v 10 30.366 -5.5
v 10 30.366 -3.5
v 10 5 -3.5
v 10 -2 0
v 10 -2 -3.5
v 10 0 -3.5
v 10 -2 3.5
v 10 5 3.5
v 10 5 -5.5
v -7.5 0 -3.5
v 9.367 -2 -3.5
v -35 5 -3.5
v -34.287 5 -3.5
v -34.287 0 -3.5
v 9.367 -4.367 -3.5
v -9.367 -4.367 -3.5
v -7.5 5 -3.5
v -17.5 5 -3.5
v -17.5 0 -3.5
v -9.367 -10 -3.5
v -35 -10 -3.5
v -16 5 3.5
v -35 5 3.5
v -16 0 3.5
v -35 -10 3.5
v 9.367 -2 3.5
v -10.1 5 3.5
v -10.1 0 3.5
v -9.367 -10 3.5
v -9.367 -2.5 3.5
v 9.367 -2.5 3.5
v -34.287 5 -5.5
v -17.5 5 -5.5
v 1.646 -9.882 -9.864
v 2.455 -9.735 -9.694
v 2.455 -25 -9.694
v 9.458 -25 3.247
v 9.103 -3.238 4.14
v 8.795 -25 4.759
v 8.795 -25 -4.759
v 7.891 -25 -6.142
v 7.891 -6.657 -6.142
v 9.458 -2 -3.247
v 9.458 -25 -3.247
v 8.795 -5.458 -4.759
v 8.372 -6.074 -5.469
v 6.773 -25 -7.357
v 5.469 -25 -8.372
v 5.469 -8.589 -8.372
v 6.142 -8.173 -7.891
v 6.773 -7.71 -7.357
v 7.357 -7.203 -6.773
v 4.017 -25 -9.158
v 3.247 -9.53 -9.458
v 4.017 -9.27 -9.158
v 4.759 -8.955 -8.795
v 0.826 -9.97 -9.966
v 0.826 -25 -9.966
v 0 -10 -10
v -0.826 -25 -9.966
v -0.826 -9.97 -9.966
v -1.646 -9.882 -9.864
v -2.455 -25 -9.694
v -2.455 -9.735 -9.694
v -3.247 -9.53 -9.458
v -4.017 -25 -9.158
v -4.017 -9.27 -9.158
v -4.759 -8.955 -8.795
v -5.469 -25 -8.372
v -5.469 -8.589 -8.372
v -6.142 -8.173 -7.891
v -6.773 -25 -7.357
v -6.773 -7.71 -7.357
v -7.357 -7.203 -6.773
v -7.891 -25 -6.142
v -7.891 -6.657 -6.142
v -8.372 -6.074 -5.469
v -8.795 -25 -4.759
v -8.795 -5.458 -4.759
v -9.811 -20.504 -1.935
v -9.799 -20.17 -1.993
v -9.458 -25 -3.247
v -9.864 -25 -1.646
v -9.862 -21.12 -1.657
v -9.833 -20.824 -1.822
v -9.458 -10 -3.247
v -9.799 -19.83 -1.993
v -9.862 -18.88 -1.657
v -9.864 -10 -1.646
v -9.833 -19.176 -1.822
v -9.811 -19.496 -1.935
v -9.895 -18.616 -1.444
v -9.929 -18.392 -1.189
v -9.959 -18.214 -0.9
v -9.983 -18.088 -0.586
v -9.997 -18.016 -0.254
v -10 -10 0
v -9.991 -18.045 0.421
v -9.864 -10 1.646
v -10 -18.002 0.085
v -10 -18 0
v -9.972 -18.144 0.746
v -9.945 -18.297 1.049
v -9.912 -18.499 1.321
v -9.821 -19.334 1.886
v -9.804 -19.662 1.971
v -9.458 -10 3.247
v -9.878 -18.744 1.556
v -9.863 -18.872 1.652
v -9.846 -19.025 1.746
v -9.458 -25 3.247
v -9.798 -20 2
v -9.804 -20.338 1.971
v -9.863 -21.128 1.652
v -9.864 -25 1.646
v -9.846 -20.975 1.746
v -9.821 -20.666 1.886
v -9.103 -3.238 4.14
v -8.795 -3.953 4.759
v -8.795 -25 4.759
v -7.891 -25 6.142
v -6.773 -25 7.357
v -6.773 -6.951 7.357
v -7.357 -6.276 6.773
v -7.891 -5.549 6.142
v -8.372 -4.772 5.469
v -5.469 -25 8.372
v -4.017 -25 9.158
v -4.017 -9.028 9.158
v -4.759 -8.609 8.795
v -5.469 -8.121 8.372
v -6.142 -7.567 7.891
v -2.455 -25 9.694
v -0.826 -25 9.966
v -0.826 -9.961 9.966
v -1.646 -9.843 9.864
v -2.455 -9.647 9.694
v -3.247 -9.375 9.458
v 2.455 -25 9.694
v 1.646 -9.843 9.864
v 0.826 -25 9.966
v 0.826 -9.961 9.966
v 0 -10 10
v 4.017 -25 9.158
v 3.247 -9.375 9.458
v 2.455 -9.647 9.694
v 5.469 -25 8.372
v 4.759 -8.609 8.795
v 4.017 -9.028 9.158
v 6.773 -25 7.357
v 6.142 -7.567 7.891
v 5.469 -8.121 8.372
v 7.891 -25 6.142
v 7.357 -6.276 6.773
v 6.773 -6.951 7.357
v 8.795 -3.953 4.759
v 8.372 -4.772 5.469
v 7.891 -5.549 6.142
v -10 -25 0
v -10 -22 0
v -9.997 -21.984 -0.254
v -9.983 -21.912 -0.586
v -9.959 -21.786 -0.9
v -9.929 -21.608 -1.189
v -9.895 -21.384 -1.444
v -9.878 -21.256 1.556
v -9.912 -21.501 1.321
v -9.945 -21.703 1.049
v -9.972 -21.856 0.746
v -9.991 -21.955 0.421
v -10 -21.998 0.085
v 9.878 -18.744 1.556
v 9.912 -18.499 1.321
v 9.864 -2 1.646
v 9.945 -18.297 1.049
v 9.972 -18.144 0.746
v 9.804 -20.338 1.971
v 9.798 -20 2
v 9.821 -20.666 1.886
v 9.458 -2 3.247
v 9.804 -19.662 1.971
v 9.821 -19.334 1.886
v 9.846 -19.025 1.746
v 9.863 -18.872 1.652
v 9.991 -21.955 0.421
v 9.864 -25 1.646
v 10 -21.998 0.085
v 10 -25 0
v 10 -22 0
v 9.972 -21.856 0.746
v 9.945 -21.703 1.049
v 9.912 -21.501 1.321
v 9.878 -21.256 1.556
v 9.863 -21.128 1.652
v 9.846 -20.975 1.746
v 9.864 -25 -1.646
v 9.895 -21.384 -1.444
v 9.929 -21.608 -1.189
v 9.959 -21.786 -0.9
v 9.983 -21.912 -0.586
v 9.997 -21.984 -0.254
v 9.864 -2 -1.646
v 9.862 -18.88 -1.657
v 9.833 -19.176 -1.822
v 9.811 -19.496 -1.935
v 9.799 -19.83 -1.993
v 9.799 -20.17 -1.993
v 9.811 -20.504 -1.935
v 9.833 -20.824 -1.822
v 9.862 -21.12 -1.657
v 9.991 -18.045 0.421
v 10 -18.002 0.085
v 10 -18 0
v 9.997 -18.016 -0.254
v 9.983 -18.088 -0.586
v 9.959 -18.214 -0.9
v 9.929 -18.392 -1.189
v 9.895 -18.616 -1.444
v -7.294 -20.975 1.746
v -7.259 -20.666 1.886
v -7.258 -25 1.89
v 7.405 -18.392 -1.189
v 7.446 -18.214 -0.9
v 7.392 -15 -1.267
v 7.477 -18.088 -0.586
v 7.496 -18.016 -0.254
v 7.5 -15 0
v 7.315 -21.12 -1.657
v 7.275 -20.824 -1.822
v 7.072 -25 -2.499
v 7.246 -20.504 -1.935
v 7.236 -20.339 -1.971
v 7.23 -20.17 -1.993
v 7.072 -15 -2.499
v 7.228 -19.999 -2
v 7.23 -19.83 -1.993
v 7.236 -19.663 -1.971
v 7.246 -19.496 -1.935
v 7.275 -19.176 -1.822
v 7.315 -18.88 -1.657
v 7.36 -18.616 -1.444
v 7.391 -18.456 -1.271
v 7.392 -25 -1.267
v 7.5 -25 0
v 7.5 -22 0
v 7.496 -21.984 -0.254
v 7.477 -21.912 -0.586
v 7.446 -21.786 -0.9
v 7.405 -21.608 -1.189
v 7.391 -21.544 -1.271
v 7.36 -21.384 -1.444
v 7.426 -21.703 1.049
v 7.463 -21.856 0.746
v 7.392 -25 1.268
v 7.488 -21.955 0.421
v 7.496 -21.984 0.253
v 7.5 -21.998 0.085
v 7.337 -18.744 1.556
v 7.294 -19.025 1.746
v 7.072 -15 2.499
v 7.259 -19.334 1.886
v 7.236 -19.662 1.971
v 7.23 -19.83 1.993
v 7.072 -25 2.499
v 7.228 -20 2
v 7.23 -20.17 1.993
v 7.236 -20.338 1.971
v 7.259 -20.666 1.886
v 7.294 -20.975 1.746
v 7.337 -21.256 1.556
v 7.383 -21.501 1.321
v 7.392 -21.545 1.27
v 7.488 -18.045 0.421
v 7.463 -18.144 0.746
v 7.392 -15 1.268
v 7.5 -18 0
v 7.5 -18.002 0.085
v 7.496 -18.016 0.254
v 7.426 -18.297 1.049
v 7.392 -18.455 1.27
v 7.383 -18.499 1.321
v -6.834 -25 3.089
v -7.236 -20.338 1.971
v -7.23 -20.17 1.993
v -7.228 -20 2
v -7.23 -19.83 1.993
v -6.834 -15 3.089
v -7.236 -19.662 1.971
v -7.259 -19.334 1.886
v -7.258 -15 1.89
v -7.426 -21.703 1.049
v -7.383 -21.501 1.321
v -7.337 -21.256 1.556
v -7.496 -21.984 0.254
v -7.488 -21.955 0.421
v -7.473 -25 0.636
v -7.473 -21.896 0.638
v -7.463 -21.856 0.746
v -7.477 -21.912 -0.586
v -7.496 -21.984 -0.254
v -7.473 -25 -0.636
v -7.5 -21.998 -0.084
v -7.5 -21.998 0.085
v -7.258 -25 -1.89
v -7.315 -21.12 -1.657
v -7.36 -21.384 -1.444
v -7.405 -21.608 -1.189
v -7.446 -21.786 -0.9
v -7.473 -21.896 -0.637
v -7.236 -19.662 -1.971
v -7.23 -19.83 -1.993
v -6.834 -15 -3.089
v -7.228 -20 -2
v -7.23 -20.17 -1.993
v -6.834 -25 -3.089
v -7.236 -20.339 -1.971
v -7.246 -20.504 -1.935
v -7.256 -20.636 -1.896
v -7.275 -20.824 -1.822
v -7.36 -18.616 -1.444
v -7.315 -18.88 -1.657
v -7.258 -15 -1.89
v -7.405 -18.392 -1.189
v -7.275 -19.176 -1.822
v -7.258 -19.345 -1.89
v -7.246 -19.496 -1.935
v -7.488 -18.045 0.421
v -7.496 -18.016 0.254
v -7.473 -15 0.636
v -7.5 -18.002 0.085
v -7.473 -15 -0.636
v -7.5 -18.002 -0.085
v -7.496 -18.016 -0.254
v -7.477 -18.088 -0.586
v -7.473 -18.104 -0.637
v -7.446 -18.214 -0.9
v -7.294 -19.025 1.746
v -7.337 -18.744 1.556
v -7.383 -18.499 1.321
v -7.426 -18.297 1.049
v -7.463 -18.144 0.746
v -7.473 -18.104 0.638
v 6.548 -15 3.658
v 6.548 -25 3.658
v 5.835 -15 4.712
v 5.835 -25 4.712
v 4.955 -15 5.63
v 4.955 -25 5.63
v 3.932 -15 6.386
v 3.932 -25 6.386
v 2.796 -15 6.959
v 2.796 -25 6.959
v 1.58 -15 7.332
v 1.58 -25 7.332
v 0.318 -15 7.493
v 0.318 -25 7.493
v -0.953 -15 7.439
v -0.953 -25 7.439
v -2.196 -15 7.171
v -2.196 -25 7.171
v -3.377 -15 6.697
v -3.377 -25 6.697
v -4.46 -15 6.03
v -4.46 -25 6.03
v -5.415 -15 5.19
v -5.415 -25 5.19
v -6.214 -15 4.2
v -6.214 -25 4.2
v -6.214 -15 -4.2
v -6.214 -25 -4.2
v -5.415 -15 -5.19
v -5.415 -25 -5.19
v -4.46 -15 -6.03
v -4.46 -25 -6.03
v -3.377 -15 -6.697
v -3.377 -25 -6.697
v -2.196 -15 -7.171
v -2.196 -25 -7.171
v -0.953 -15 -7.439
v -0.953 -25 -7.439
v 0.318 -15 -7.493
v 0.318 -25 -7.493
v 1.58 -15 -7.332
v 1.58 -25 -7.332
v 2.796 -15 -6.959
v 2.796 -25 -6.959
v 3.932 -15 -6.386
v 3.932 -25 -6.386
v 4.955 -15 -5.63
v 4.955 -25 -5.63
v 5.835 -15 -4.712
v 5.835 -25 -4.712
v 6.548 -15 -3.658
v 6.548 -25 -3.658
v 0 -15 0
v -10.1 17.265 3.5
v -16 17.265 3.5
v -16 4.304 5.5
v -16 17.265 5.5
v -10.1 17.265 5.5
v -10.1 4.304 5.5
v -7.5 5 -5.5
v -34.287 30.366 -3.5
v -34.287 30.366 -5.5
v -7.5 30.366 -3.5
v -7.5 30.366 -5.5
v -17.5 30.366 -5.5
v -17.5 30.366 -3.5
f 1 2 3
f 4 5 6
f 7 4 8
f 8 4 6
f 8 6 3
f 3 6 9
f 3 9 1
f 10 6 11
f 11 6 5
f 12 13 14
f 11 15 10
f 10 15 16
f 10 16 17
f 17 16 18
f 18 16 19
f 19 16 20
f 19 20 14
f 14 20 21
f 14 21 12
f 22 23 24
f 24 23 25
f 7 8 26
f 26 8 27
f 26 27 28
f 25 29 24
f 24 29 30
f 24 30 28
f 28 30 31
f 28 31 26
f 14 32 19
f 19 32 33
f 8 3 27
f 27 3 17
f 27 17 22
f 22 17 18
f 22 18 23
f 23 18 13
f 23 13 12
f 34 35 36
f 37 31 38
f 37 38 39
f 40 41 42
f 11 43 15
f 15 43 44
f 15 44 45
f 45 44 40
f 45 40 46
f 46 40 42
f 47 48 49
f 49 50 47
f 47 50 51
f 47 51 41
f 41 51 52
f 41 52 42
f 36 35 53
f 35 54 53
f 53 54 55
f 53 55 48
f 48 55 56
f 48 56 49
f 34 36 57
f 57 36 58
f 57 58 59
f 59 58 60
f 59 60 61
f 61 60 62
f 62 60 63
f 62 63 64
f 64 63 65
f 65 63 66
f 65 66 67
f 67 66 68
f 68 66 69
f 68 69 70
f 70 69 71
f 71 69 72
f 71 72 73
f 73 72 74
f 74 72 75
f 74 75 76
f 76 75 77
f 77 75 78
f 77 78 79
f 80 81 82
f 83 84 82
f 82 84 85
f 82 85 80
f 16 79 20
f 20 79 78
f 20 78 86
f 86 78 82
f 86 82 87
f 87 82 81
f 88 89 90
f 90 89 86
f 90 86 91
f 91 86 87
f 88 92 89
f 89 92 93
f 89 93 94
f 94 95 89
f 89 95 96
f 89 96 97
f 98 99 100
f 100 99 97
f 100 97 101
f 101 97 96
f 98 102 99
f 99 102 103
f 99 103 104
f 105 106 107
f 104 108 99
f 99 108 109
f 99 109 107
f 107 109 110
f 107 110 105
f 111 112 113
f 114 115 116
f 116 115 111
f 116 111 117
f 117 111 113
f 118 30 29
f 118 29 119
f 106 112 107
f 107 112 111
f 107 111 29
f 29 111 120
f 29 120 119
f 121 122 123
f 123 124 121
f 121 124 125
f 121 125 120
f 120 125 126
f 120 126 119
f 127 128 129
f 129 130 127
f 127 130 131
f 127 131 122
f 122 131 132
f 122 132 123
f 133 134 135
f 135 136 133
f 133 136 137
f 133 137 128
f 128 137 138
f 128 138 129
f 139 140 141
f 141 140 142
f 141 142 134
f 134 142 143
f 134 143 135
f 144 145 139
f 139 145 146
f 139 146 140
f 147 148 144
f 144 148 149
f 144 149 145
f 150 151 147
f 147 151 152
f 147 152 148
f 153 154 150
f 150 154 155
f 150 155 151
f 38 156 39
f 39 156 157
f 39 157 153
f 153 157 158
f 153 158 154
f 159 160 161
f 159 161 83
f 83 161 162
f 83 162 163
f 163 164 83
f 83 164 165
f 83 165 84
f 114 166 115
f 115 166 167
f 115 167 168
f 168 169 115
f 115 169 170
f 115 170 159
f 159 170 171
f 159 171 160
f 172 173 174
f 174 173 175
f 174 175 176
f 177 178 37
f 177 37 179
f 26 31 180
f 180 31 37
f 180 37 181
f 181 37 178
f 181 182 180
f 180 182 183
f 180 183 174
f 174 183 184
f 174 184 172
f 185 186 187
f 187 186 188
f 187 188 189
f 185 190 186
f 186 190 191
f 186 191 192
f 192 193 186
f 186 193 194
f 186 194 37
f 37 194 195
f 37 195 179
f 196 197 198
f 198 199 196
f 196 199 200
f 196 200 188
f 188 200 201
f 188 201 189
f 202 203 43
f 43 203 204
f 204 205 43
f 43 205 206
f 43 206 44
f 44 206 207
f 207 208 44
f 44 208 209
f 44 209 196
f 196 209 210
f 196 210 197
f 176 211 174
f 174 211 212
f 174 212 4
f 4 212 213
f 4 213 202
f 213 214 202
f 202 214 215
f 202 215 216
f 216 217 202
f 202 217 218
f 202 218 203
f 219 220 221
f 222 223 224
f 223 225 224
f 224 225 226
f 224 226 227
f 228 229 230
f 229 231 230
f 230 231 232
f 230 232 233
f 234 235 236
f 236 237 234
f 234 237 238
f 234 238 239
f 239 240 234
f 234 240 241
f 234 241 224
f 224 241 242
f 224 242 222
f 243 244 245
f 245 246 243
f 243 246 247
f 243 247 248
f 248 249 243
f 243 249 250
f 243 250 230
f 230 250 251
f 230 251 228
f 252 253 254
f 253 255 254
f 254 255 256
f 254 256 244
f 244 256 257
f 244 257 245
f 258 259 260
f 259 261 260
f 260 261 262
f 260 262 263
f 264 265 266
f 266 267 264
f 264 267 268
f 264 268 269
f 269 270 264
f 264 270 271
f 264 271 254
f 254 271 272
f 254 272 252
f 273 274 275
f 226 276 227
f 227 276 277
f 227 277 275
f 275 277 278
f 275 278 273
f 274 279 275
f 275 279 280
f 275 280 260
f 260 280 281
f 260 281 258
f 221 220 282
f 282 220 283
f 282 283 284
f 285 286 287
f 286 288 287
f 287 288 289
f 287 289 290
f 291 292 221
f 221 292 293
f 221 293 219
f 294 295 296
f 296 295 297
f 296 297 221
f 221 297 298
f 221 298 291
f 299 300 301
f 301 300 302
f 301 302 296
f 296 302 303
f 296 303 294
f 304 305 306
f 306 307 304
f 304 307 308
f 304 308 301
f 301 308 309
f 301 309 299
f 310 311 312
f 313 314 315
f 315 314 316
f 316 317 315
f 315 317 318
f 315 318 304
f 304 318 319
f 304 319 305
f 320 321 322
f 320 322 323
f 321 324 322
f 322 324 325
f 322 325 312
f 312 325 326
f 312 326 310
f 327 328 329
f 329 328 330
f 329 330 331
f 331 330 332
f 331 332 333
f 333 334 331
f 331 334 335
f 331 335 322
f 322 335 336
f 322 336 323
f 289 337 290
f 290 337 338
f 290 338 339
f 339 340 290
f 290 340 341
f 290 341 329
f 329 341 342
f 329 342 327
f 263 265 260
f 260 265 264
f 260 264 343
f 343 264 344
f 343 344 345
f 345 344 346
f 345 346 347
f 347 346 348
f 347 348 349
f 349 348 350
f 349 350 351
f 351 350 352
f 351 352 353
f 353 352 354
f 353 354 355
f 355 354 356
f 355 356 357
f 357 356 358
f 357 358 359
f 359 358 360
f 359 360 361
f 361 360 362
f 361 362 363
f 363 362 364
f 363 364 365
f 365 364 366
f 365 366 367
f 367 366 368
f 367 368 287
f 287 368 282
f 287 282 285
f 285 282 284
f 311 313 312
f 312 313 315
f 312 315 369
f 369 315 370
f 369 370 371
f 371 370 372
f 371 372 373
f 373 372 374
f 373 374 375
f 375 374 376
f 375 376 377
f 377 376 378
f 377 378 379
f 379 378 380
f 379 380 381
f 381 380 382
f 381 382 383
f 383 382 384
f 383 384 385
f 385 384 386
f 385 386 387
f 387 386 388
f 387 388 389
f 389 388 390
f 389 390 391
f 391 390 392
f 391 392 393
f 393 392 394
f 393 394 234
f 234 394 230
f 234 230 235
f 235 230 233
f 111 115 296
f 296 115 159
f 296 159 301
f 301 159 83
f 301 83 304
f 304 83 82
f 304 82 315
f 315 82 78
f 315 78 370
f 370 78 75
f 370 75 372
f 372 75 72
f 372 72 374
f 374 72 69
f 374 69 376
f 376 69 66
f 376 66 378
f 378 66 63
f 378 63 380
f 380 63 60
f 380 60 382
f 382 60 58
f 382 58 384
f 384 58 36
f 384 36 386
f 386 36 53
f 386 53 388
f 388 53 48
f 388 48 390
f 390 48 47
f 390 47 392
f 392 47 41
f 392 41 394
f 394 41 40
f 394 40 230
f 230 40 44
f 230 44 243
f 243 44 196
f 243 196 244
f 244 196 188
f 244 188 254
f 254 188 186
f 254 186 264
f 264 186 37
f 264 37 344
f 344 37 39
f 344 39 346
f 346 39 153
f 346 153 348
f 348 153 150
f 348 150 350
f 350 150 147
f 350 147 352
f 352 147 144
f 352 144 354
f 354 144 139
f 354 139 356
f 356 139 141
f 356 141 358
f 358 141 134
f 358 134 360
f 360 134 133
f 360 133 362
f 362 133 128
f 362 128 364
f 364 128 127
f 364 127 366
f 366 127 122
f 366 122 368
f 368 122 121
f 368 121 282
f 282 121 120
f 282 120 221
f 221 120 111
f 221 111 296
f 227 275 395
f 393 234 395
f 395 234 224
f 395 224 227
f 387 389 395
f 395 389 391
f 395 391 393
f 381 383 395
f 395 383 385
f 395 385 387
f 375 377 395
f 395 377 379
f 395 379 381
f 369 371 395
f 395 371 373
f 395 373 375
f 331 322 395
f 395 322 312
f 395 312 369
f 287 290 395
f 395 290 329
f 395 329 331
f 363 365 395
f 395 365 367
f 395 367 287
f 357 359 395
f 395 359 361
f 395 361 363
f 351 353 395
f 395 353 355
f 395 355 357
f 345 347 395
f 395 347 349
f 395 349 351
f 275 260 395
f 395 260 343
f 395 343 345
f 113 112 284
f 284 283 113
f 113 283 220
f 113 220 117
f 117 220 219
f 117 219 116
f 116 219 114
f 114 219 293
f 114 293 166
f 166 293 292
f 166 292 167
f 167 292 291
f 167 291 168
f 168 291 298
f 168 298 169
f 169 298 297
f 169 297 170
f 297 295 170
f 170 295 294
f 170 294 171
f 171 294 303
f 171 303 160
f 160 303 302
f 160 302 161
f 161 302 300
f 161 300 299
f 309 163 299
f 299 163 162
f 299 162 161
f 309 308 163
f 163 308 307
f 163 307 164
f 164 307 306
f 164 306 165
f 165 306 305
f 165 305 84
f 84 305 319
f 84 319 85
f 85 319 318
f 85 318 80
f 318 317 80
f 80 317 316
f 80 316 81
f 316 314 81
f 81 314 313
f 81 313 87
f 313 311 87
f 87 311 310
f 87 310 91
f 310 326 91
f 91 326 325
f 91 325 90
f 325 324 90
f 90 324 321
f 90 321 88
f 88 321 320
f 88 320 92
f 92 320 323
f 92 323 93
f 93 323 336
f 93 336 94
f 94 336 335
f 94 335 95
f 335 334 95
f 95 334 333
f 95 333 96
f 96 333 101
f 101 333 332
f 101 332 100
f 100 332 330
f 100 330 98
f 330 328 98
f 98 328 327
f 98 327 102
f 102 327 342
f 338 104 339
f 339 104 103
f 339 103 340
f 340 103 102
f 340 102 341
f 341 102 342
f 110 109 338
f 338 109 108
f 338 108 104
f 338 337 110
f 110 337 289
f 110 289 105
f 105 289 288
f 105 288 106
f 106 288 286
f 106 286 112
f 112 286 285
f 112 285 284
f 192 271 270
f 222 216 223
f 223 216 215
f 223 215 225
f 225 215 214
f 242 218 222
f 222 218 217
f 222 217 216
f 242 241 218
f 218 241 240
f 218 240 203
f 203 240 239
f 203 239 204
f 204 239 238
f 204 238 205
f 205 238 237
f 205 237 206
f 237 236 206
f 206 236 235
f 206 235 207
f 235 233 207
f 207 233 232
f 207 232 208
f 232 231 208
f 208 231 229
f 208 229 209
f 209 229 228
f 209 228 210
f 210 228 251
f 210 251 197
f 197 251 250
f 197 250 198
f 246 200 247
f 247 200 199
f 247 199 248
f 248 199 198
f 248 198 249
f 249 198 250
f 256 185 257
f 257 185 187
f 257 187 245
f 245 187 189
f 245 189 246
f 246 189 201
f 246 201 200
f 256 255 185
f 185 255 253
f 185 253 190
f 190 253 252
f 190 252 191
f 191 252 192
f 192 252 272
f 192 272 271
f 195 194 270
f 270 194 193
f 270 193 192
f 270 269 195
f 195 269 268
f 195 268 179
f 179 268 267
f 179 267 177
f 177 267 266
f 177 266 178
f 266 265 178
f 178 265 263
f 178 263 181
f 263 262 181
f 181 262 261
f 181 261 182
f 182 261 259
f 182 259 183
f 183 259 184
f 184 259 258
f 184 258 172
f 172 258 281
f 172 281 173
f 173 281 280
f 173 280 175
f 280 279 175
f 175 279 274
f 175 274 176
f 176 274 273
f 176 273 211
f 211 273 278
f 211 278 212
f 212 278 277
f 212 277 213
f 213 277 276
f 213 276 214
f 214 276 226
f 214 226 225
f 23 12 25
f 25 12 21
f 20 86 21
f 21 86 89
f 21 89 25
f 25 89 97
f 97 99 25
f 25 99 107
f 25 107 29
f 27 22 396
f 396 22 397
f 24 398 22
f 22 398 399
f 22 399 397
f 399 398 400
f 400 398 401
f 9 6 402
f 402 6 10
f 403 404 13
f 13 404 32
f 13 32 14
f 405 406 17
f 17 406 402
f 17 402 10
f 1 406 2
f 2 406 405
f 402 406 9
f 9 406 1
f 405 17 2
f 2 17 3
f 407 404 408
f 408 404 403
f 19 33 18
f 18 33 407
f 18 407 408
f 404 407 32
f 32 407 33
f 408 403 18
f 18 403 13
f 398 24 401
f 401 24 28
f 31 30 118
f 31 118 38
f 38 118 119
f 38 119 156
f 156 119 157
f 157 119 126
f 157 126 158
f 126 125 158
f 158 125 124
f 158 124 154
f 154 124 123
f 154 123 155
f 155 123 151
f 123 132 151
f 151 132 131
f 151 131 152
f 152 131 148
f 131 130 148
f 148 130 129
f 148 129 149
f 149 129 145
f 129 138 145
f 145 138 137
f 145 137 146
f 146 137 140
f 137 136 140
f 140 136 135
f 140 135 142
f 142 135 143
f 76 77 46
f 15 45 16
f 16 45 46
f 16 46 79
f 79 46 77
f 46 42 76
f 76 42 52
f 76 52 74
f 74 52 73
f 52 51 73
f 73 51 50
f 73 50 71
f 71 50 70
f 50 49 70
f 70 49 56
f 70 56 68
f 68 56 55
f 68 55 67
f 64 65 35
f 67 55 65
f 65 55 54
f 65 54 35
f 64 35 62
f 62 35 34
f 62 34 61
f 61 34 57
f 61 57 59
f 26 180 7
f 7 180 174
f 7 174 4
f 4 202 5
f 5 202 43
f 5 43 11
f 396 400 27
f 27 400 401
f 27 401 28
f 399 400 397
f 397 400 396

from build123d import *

# Parameters (mm, degrees)
SKETCH2_R               = 10
BOSS_EXTRUDE1_DEPTH     = 30
CUT_EXTRUDE1_START      = -10
SKETCH3_R               = 10
SKETCH3_R_2             = 7.5
CUT_EXTRUDE1_DEPTH      = 10
CUT_EXTRUDE3_DEPTH      = 10
CUT_EXTRUDE3_DEPTH_BACK = 10
SKETCH5_R               = 2
FILLET2_R               = 10
BOSS_EXTRUDE2_START     = -67.5
SKETCH7_R               = 10
BOSS_EXTRUDE2_DEPTH     = 67.5
SKETCH8_R               = 50
SKETCH8_R_2             = 10
CUT_EXTRUDE6_DEPTH      = 107.770782567
SKETCH9_R               = 7.5
CUT_EXTRUDE7_DEPTH      = 10
CUT_EXTRUDE8_DEPTH      = 10
CUT_EXTRUDE8_DEPTH_BACK = 10
SKETCH10_R              = 2
CUT_EXTRUDE9_DEPTH      = 48
CUT_EXTRUDE9_DEPTH_BACK = 29
SKETCH12_W              = 23.028444079
SKETCH12_H              = 65
SKETCH13_W              = 45
SKETCH13_H              = 7
BOSS_EXTRUDE3_DEPTH     = 15
SKETCH14_W              = 7
SKETCH14_H              = 25.920736851
BOSS_EXTRUDE4_DEPTH     = 2
SKETCH15_W              = 17.5
SKETCH15_H              = 25.366229316
BOSS_EXTRUDE5_DEPTH     = 2
SKETCH15_W_2            = 16.786959534
BOSS_EXTRUDE5_2_DEPTH   = 2
BOSS_EXTRUDE6_START     = -44.28696
BOSS_EXTRUDE6_DEPTH     = 44.28696
SKETCH17_W              = 10
SKETCH17_H              = 2
SKETCH17_W_2            = 18.286959534
SKETCH17_W_3            = 19
CUT_EXTRUDE10_DEPTH     = 8
BOSS_EXTRUDE7_DEPTH     = 19.367497
CUT_EXTRUDE11_DEPTH     = 8
SKETCH22_W              = 1.1
SKETCH22_H              = 2
CUT_EXTRUDE12_DEPTH     = 32
SKETCH23_W              = 5.9
SKETCH23_H              = 12.960368426
CUT_EXTRUDE13_DEPTH     = 10


with BuildPart() as part:
    # Sketch1 → Revolve1 (revolve)
    with BuildSketch(Plane.XY):
        Polygon((50, 25), (0, 25), (0, 22.5), (45, 22.5), (45, -22.5), (0, -22.5), (0, -25), (50, -25), align=None)
    revolve(axis=Axis((0, -25, 0), (0, 1, 0)))

    # Sketch2 → Boss-Extrude1 (add)
    with BuildSketch(Plane(origin=(0, 25, 0), x_dir=(1, 0, 0), z_dir=(0, 1, 0))):
        with Locations(Location((0, 0, 0), (0, 0, 180))):
            Circle(SKETCH2_R)
    extrude(amount=BOSS_EXTRUDE1_DEPTH)

    # Sketch3 → Cut-Extrude1 (cut)
    with BuildSketch(Plane(origin=(0, 55, 0), x_dir=(1, 0, 0), z_dir=(0, 1, 0)).offset(CUT_EXTRUDE1_START)):
        with Locations(Location((0, 0, 0), (0, 0, 180))):
            Circle(SKETCH3_R)
        with Locations(Location((0, 0, 0), (0, 0, 180))):
            Circle(SKETCH3_R_2, mode=Mode.SUBTRACT)
    extrude(amount=CUT_EXTRUDE1_DEPTH, mode=Mode.SUBTRACT)

    # Sketch5 → Cut-Extrude3 (cut, two sides: drawn at the far end of the back side and taken through both)
    with BuildSketch(Plane(origin=(0, 0, 0), x_dir=(0, 0, -1), z_dir=(1, 0, 0)).offset(-CUT_EXTRUDE3_DEPTH_BACK)):
        with Locations(Location((0, 50, 0), (0, 0, 180))):
            Circle(SKETCH5_R)
    extrude(amount=CUT_EXTRUDE3_DEPTH + CUT_EXTRUDE3_DEPTH_BACK, mode=Mode.SUBTRACT)

    # Fillet2
    fillet2_edges = [part.edges().sort_by_distance(p)[0] for p in [
        (-50, 25, 0),
    ]]
    fillet(fillet2_edges, radius=FILLET2_R)

    # Sketch7 → Boss-Extrude2 (add)
    with BuildSketch(Plane(origin=(0, 45, 0), x_dir=(1, 0, 0), z_dir=(0, 1, 0)).offset(BOSS_EXTRUDE2_START)):
        with Locations(Location((0, 0, 0), (0, 0, 180))):
            Circle(SKETCH7_R)
    extrude(amount=BOSS_EXTRUDE2_DEPTH)

    # Sketch8 → Cut-Extrude6 (cut, through all)
    with BuildSketch(Plane(origin=(0, 55, 0), x_dir=(1, 0, 0), z_dir=(0, 1, 0))):
        Circle(SKETCH8_R)
        with Locations(Location((0, 0, 0), (0, 0, 180))):
            Circle(SKETCH8_R_2, mode=Mode.SUBTRACT)
    extrude(amount=-CUT_EXTRUDE6_DEPTH, mode=Mode.SUBTRACT)

    # Sketch9 → Cut-Extrude7 (cut)
    with BuildSketch(Plane.XZ.offset(25)):
        with Locations(Location((0, 0, 0), (0, 0, 180))):
            Circle(SKETCH9_R)
    extrude(amount=-CUT_EXTRUDE7_DEPTH, mode=Mode.SUBTRACT)

    # Sketch10 → Cut-Extrude8 (cut, two sides: drawn at the far end of the back side and taken through both)
    with BuildSketch(Plane(origin=(0, 0, 0), x_dir=(0, 0, -1), z_dir=(1, 0, 0)).offset(-CUT_EXTRUDE8_DEPTH_BACK)):
        with Locations(Location((0, -20, 0), (0, 0, 180))):
            Circle(SKETCH10_R)
    extrude(amount=CUT_EXTRUDE8_DEPTH + CUT_EXTRUDE8_DEPTH_BACK, mode=Mode.SUBTRACT)

    # Sketch12 → Cut-Extrude9 (cut, two sides: drawn at the far end of the back side and taken through both)
    with BuildSketch(Plane(origin=(0, 0, 0), x_dir=(0, 0, -1), z_dir=(1, 0, 0)).offset(-CUT_EXTRUDE9_DEPTH_BACK)):
        with Locations((0.475794299, 22.5)):
            Rectangle(SKETCH12_W, SKETCH12_H)
    extrude(amount=CUT_EXTRUDE9_DEPTH + CUT_EXTRUDE9_DEPTH_BACK, mode=Mode.SUBTRACT)

    # Sketch13 → Boss-Extrude3 (add)
    with BuildSketch(Plane(origin=(0, -10, 0), x_dir=(1, 0, 0), z_dir=(0, 1, 0))):
        with Locations((-12.5, 0)):
            Rectangle(SKETCH13_W, SKETCH13_H)
    extrude(amount=BOSS_EXTRUDE3_DEPTH)

    # Sketch14 → Boss-Extrude4 (add)
    with BuildSketch(Plane.XY.offset(3.5)):
        with Locations((-12.5, 17.264610389)):
            Rectangle(SKETCH14_W, SKETCH14_H)
    extrude(amount=BOSS_EXTRUDE4_DEPTH)



with BuildPart() as body_2:
    # Sketch15 → Boss-Extrude5 (new body)
    with BuildSketch(Plane(origin=(0, 0, -3.5), x_dir=(-1, 0, 0), z_dir=(0, 0, -1))):
        with Locations((-1.25, 17.683114658)):
            Rectangle(SKETCH15_W, SKETCH15_H)
    extrude(amount=BOSS_EXTRUDE5_DEPTH)


with BuildPart() as body_3:
    # Sketch15 → Boss-Extrude5 2 (new body)
    with BuildSketch(Plane(origin=(0, 0, -3.5), x_dir=(-1, 0, 0), z_dir=(0, 0, -1))):
        with Locations((25.893479767, 17.683114658)):
            Rectangle(SKETCH15_W_2, SKETCH15_H)
    extrude(amount=BOSS_EXTRUDE5_2_DEPTH)


with BuildPart() as part_1:
    add(part.part)

    add(body_2.part)  # Boss-Extrude6 merges body 2

    add(body_3.part)  # Boss-Extrude6 merges body 3
    # Sketch16 → Boss-Extrude6 (add)
    with BuildSketch(Plane.ZY.offset(34.286959534).offset(BOSS_EXTRUDE6_START)):
        Polygon((-5.5, 5), (-3.5, 0), (-3.5, 5), align=None)
        Polygon((3.5, 0), (5.5, 4.304241963), (3.5, 4.304241963), align=None)
    extrude(amount=BOSS_EXTRUDE6_DEPTH)

    # Sketch17 → Cut-Extrude10 (cut)
    with BuildSketch(Plane(origin=(0, 5, 0), x_dir=(1, 0, 0), z_dir=(0, 1, 0))):
        with Locations((-12.5, 4.5)):
            Rectangle(SKETCH17_W, SKETCH17_H)
        with Locations((-25.143479767, -4.5)):
            Rectangle(SKETCH17_W_2, SKETCH17_H)
        with Locations((0.5, -4.5)):
            Rectangle(SKETCH17_W_3, SKETCH17_H)
    extrude(amount=-CUT_EXTRUDE10_DEPTH, mode=Mode.SUBTRACT)

    # Sketch18 → Boss-Extrude7 (add)
    with BuildSketch(Plane(origin=(10, 0, 0), x_dir=(0, 0, -1), z_dir=(1, 0, 0))):
        Polygon((-10, -10), (-3.5, -10), (-3.5, -2.5), align=None)
        Polygon((10, -10), (3.5, -4.366666667), (3.5, -10), align=None)
    extrude(amount=-BOSS_EXTRUDE7_DEPTH)

    # Sketch19 → Cut-Extrude11 (cut)
    with BuildSketch(Plane.XZ.offset(10)):
        with BuildLine():
            ThreePointArc((0, 10), (7.071067812, 7.071067812), (10, 0))
            Line((10, 0), (10, 10))
            Line((10, 10), (0, 10))
        make_face()
        with BuildLine():
            Line((-13.702189606, 3.5), (-9.367496998, 3.5))
            ThreePointArc((-9.367496998, 3.5), (-5.700877125, 8.215838363), (0, 10))
            Line((0, 10), (10, 10))
            ThreePointArc((10, 10), (-3.740194109, 13.638583065), (-13.702189606, 3.5))
        make_face()
        with BuildLine():
            ThreePointArc((10, 0), (1.778346145, -9.840603893), (-9.367496998, -3.5))
            Line((-9.367496998, -3.5), (-13.702189606, -3.5))
            ThreePointArc((-13.702189606, -3.5), (6.999217954, -12.288651188), (10, 10))
            Line((10, 10), (10, 0))
        make_face()
    extrude(amount=-CUT_EXTRUDE11_DEPTH, mode=Mode.SUBTRACT)

    # Sketch22 → Cut-Extrude12 (cut)
    with BuildSketch(Plane(origin=(0, 30.224978814, 0), x_dir=(1, 0, 0), z_dir=(0, 1, 0))):
        with Locations((-9.55, -4.5)):
            Rectangle(SKETCH22_W, SKETCH22_H)
    extrude(amount=-CUT_EXTRUDE12_DEPTH, mode=Mode.SUBTRACT)

    # Sketch23 → Cut-Extrude13 (cut)
    with BuildSketch(Plane.XY.offset(5.5)):
        with Locations((-13.05, 23.744794601)):
            Rectangle(SKETCH23_W, SKETCH23_H)
    extrude(amount=-CUT_EXTRUDE13_DEPTH, mode=Mode.SUBTRACT)


solid = part_1.part
